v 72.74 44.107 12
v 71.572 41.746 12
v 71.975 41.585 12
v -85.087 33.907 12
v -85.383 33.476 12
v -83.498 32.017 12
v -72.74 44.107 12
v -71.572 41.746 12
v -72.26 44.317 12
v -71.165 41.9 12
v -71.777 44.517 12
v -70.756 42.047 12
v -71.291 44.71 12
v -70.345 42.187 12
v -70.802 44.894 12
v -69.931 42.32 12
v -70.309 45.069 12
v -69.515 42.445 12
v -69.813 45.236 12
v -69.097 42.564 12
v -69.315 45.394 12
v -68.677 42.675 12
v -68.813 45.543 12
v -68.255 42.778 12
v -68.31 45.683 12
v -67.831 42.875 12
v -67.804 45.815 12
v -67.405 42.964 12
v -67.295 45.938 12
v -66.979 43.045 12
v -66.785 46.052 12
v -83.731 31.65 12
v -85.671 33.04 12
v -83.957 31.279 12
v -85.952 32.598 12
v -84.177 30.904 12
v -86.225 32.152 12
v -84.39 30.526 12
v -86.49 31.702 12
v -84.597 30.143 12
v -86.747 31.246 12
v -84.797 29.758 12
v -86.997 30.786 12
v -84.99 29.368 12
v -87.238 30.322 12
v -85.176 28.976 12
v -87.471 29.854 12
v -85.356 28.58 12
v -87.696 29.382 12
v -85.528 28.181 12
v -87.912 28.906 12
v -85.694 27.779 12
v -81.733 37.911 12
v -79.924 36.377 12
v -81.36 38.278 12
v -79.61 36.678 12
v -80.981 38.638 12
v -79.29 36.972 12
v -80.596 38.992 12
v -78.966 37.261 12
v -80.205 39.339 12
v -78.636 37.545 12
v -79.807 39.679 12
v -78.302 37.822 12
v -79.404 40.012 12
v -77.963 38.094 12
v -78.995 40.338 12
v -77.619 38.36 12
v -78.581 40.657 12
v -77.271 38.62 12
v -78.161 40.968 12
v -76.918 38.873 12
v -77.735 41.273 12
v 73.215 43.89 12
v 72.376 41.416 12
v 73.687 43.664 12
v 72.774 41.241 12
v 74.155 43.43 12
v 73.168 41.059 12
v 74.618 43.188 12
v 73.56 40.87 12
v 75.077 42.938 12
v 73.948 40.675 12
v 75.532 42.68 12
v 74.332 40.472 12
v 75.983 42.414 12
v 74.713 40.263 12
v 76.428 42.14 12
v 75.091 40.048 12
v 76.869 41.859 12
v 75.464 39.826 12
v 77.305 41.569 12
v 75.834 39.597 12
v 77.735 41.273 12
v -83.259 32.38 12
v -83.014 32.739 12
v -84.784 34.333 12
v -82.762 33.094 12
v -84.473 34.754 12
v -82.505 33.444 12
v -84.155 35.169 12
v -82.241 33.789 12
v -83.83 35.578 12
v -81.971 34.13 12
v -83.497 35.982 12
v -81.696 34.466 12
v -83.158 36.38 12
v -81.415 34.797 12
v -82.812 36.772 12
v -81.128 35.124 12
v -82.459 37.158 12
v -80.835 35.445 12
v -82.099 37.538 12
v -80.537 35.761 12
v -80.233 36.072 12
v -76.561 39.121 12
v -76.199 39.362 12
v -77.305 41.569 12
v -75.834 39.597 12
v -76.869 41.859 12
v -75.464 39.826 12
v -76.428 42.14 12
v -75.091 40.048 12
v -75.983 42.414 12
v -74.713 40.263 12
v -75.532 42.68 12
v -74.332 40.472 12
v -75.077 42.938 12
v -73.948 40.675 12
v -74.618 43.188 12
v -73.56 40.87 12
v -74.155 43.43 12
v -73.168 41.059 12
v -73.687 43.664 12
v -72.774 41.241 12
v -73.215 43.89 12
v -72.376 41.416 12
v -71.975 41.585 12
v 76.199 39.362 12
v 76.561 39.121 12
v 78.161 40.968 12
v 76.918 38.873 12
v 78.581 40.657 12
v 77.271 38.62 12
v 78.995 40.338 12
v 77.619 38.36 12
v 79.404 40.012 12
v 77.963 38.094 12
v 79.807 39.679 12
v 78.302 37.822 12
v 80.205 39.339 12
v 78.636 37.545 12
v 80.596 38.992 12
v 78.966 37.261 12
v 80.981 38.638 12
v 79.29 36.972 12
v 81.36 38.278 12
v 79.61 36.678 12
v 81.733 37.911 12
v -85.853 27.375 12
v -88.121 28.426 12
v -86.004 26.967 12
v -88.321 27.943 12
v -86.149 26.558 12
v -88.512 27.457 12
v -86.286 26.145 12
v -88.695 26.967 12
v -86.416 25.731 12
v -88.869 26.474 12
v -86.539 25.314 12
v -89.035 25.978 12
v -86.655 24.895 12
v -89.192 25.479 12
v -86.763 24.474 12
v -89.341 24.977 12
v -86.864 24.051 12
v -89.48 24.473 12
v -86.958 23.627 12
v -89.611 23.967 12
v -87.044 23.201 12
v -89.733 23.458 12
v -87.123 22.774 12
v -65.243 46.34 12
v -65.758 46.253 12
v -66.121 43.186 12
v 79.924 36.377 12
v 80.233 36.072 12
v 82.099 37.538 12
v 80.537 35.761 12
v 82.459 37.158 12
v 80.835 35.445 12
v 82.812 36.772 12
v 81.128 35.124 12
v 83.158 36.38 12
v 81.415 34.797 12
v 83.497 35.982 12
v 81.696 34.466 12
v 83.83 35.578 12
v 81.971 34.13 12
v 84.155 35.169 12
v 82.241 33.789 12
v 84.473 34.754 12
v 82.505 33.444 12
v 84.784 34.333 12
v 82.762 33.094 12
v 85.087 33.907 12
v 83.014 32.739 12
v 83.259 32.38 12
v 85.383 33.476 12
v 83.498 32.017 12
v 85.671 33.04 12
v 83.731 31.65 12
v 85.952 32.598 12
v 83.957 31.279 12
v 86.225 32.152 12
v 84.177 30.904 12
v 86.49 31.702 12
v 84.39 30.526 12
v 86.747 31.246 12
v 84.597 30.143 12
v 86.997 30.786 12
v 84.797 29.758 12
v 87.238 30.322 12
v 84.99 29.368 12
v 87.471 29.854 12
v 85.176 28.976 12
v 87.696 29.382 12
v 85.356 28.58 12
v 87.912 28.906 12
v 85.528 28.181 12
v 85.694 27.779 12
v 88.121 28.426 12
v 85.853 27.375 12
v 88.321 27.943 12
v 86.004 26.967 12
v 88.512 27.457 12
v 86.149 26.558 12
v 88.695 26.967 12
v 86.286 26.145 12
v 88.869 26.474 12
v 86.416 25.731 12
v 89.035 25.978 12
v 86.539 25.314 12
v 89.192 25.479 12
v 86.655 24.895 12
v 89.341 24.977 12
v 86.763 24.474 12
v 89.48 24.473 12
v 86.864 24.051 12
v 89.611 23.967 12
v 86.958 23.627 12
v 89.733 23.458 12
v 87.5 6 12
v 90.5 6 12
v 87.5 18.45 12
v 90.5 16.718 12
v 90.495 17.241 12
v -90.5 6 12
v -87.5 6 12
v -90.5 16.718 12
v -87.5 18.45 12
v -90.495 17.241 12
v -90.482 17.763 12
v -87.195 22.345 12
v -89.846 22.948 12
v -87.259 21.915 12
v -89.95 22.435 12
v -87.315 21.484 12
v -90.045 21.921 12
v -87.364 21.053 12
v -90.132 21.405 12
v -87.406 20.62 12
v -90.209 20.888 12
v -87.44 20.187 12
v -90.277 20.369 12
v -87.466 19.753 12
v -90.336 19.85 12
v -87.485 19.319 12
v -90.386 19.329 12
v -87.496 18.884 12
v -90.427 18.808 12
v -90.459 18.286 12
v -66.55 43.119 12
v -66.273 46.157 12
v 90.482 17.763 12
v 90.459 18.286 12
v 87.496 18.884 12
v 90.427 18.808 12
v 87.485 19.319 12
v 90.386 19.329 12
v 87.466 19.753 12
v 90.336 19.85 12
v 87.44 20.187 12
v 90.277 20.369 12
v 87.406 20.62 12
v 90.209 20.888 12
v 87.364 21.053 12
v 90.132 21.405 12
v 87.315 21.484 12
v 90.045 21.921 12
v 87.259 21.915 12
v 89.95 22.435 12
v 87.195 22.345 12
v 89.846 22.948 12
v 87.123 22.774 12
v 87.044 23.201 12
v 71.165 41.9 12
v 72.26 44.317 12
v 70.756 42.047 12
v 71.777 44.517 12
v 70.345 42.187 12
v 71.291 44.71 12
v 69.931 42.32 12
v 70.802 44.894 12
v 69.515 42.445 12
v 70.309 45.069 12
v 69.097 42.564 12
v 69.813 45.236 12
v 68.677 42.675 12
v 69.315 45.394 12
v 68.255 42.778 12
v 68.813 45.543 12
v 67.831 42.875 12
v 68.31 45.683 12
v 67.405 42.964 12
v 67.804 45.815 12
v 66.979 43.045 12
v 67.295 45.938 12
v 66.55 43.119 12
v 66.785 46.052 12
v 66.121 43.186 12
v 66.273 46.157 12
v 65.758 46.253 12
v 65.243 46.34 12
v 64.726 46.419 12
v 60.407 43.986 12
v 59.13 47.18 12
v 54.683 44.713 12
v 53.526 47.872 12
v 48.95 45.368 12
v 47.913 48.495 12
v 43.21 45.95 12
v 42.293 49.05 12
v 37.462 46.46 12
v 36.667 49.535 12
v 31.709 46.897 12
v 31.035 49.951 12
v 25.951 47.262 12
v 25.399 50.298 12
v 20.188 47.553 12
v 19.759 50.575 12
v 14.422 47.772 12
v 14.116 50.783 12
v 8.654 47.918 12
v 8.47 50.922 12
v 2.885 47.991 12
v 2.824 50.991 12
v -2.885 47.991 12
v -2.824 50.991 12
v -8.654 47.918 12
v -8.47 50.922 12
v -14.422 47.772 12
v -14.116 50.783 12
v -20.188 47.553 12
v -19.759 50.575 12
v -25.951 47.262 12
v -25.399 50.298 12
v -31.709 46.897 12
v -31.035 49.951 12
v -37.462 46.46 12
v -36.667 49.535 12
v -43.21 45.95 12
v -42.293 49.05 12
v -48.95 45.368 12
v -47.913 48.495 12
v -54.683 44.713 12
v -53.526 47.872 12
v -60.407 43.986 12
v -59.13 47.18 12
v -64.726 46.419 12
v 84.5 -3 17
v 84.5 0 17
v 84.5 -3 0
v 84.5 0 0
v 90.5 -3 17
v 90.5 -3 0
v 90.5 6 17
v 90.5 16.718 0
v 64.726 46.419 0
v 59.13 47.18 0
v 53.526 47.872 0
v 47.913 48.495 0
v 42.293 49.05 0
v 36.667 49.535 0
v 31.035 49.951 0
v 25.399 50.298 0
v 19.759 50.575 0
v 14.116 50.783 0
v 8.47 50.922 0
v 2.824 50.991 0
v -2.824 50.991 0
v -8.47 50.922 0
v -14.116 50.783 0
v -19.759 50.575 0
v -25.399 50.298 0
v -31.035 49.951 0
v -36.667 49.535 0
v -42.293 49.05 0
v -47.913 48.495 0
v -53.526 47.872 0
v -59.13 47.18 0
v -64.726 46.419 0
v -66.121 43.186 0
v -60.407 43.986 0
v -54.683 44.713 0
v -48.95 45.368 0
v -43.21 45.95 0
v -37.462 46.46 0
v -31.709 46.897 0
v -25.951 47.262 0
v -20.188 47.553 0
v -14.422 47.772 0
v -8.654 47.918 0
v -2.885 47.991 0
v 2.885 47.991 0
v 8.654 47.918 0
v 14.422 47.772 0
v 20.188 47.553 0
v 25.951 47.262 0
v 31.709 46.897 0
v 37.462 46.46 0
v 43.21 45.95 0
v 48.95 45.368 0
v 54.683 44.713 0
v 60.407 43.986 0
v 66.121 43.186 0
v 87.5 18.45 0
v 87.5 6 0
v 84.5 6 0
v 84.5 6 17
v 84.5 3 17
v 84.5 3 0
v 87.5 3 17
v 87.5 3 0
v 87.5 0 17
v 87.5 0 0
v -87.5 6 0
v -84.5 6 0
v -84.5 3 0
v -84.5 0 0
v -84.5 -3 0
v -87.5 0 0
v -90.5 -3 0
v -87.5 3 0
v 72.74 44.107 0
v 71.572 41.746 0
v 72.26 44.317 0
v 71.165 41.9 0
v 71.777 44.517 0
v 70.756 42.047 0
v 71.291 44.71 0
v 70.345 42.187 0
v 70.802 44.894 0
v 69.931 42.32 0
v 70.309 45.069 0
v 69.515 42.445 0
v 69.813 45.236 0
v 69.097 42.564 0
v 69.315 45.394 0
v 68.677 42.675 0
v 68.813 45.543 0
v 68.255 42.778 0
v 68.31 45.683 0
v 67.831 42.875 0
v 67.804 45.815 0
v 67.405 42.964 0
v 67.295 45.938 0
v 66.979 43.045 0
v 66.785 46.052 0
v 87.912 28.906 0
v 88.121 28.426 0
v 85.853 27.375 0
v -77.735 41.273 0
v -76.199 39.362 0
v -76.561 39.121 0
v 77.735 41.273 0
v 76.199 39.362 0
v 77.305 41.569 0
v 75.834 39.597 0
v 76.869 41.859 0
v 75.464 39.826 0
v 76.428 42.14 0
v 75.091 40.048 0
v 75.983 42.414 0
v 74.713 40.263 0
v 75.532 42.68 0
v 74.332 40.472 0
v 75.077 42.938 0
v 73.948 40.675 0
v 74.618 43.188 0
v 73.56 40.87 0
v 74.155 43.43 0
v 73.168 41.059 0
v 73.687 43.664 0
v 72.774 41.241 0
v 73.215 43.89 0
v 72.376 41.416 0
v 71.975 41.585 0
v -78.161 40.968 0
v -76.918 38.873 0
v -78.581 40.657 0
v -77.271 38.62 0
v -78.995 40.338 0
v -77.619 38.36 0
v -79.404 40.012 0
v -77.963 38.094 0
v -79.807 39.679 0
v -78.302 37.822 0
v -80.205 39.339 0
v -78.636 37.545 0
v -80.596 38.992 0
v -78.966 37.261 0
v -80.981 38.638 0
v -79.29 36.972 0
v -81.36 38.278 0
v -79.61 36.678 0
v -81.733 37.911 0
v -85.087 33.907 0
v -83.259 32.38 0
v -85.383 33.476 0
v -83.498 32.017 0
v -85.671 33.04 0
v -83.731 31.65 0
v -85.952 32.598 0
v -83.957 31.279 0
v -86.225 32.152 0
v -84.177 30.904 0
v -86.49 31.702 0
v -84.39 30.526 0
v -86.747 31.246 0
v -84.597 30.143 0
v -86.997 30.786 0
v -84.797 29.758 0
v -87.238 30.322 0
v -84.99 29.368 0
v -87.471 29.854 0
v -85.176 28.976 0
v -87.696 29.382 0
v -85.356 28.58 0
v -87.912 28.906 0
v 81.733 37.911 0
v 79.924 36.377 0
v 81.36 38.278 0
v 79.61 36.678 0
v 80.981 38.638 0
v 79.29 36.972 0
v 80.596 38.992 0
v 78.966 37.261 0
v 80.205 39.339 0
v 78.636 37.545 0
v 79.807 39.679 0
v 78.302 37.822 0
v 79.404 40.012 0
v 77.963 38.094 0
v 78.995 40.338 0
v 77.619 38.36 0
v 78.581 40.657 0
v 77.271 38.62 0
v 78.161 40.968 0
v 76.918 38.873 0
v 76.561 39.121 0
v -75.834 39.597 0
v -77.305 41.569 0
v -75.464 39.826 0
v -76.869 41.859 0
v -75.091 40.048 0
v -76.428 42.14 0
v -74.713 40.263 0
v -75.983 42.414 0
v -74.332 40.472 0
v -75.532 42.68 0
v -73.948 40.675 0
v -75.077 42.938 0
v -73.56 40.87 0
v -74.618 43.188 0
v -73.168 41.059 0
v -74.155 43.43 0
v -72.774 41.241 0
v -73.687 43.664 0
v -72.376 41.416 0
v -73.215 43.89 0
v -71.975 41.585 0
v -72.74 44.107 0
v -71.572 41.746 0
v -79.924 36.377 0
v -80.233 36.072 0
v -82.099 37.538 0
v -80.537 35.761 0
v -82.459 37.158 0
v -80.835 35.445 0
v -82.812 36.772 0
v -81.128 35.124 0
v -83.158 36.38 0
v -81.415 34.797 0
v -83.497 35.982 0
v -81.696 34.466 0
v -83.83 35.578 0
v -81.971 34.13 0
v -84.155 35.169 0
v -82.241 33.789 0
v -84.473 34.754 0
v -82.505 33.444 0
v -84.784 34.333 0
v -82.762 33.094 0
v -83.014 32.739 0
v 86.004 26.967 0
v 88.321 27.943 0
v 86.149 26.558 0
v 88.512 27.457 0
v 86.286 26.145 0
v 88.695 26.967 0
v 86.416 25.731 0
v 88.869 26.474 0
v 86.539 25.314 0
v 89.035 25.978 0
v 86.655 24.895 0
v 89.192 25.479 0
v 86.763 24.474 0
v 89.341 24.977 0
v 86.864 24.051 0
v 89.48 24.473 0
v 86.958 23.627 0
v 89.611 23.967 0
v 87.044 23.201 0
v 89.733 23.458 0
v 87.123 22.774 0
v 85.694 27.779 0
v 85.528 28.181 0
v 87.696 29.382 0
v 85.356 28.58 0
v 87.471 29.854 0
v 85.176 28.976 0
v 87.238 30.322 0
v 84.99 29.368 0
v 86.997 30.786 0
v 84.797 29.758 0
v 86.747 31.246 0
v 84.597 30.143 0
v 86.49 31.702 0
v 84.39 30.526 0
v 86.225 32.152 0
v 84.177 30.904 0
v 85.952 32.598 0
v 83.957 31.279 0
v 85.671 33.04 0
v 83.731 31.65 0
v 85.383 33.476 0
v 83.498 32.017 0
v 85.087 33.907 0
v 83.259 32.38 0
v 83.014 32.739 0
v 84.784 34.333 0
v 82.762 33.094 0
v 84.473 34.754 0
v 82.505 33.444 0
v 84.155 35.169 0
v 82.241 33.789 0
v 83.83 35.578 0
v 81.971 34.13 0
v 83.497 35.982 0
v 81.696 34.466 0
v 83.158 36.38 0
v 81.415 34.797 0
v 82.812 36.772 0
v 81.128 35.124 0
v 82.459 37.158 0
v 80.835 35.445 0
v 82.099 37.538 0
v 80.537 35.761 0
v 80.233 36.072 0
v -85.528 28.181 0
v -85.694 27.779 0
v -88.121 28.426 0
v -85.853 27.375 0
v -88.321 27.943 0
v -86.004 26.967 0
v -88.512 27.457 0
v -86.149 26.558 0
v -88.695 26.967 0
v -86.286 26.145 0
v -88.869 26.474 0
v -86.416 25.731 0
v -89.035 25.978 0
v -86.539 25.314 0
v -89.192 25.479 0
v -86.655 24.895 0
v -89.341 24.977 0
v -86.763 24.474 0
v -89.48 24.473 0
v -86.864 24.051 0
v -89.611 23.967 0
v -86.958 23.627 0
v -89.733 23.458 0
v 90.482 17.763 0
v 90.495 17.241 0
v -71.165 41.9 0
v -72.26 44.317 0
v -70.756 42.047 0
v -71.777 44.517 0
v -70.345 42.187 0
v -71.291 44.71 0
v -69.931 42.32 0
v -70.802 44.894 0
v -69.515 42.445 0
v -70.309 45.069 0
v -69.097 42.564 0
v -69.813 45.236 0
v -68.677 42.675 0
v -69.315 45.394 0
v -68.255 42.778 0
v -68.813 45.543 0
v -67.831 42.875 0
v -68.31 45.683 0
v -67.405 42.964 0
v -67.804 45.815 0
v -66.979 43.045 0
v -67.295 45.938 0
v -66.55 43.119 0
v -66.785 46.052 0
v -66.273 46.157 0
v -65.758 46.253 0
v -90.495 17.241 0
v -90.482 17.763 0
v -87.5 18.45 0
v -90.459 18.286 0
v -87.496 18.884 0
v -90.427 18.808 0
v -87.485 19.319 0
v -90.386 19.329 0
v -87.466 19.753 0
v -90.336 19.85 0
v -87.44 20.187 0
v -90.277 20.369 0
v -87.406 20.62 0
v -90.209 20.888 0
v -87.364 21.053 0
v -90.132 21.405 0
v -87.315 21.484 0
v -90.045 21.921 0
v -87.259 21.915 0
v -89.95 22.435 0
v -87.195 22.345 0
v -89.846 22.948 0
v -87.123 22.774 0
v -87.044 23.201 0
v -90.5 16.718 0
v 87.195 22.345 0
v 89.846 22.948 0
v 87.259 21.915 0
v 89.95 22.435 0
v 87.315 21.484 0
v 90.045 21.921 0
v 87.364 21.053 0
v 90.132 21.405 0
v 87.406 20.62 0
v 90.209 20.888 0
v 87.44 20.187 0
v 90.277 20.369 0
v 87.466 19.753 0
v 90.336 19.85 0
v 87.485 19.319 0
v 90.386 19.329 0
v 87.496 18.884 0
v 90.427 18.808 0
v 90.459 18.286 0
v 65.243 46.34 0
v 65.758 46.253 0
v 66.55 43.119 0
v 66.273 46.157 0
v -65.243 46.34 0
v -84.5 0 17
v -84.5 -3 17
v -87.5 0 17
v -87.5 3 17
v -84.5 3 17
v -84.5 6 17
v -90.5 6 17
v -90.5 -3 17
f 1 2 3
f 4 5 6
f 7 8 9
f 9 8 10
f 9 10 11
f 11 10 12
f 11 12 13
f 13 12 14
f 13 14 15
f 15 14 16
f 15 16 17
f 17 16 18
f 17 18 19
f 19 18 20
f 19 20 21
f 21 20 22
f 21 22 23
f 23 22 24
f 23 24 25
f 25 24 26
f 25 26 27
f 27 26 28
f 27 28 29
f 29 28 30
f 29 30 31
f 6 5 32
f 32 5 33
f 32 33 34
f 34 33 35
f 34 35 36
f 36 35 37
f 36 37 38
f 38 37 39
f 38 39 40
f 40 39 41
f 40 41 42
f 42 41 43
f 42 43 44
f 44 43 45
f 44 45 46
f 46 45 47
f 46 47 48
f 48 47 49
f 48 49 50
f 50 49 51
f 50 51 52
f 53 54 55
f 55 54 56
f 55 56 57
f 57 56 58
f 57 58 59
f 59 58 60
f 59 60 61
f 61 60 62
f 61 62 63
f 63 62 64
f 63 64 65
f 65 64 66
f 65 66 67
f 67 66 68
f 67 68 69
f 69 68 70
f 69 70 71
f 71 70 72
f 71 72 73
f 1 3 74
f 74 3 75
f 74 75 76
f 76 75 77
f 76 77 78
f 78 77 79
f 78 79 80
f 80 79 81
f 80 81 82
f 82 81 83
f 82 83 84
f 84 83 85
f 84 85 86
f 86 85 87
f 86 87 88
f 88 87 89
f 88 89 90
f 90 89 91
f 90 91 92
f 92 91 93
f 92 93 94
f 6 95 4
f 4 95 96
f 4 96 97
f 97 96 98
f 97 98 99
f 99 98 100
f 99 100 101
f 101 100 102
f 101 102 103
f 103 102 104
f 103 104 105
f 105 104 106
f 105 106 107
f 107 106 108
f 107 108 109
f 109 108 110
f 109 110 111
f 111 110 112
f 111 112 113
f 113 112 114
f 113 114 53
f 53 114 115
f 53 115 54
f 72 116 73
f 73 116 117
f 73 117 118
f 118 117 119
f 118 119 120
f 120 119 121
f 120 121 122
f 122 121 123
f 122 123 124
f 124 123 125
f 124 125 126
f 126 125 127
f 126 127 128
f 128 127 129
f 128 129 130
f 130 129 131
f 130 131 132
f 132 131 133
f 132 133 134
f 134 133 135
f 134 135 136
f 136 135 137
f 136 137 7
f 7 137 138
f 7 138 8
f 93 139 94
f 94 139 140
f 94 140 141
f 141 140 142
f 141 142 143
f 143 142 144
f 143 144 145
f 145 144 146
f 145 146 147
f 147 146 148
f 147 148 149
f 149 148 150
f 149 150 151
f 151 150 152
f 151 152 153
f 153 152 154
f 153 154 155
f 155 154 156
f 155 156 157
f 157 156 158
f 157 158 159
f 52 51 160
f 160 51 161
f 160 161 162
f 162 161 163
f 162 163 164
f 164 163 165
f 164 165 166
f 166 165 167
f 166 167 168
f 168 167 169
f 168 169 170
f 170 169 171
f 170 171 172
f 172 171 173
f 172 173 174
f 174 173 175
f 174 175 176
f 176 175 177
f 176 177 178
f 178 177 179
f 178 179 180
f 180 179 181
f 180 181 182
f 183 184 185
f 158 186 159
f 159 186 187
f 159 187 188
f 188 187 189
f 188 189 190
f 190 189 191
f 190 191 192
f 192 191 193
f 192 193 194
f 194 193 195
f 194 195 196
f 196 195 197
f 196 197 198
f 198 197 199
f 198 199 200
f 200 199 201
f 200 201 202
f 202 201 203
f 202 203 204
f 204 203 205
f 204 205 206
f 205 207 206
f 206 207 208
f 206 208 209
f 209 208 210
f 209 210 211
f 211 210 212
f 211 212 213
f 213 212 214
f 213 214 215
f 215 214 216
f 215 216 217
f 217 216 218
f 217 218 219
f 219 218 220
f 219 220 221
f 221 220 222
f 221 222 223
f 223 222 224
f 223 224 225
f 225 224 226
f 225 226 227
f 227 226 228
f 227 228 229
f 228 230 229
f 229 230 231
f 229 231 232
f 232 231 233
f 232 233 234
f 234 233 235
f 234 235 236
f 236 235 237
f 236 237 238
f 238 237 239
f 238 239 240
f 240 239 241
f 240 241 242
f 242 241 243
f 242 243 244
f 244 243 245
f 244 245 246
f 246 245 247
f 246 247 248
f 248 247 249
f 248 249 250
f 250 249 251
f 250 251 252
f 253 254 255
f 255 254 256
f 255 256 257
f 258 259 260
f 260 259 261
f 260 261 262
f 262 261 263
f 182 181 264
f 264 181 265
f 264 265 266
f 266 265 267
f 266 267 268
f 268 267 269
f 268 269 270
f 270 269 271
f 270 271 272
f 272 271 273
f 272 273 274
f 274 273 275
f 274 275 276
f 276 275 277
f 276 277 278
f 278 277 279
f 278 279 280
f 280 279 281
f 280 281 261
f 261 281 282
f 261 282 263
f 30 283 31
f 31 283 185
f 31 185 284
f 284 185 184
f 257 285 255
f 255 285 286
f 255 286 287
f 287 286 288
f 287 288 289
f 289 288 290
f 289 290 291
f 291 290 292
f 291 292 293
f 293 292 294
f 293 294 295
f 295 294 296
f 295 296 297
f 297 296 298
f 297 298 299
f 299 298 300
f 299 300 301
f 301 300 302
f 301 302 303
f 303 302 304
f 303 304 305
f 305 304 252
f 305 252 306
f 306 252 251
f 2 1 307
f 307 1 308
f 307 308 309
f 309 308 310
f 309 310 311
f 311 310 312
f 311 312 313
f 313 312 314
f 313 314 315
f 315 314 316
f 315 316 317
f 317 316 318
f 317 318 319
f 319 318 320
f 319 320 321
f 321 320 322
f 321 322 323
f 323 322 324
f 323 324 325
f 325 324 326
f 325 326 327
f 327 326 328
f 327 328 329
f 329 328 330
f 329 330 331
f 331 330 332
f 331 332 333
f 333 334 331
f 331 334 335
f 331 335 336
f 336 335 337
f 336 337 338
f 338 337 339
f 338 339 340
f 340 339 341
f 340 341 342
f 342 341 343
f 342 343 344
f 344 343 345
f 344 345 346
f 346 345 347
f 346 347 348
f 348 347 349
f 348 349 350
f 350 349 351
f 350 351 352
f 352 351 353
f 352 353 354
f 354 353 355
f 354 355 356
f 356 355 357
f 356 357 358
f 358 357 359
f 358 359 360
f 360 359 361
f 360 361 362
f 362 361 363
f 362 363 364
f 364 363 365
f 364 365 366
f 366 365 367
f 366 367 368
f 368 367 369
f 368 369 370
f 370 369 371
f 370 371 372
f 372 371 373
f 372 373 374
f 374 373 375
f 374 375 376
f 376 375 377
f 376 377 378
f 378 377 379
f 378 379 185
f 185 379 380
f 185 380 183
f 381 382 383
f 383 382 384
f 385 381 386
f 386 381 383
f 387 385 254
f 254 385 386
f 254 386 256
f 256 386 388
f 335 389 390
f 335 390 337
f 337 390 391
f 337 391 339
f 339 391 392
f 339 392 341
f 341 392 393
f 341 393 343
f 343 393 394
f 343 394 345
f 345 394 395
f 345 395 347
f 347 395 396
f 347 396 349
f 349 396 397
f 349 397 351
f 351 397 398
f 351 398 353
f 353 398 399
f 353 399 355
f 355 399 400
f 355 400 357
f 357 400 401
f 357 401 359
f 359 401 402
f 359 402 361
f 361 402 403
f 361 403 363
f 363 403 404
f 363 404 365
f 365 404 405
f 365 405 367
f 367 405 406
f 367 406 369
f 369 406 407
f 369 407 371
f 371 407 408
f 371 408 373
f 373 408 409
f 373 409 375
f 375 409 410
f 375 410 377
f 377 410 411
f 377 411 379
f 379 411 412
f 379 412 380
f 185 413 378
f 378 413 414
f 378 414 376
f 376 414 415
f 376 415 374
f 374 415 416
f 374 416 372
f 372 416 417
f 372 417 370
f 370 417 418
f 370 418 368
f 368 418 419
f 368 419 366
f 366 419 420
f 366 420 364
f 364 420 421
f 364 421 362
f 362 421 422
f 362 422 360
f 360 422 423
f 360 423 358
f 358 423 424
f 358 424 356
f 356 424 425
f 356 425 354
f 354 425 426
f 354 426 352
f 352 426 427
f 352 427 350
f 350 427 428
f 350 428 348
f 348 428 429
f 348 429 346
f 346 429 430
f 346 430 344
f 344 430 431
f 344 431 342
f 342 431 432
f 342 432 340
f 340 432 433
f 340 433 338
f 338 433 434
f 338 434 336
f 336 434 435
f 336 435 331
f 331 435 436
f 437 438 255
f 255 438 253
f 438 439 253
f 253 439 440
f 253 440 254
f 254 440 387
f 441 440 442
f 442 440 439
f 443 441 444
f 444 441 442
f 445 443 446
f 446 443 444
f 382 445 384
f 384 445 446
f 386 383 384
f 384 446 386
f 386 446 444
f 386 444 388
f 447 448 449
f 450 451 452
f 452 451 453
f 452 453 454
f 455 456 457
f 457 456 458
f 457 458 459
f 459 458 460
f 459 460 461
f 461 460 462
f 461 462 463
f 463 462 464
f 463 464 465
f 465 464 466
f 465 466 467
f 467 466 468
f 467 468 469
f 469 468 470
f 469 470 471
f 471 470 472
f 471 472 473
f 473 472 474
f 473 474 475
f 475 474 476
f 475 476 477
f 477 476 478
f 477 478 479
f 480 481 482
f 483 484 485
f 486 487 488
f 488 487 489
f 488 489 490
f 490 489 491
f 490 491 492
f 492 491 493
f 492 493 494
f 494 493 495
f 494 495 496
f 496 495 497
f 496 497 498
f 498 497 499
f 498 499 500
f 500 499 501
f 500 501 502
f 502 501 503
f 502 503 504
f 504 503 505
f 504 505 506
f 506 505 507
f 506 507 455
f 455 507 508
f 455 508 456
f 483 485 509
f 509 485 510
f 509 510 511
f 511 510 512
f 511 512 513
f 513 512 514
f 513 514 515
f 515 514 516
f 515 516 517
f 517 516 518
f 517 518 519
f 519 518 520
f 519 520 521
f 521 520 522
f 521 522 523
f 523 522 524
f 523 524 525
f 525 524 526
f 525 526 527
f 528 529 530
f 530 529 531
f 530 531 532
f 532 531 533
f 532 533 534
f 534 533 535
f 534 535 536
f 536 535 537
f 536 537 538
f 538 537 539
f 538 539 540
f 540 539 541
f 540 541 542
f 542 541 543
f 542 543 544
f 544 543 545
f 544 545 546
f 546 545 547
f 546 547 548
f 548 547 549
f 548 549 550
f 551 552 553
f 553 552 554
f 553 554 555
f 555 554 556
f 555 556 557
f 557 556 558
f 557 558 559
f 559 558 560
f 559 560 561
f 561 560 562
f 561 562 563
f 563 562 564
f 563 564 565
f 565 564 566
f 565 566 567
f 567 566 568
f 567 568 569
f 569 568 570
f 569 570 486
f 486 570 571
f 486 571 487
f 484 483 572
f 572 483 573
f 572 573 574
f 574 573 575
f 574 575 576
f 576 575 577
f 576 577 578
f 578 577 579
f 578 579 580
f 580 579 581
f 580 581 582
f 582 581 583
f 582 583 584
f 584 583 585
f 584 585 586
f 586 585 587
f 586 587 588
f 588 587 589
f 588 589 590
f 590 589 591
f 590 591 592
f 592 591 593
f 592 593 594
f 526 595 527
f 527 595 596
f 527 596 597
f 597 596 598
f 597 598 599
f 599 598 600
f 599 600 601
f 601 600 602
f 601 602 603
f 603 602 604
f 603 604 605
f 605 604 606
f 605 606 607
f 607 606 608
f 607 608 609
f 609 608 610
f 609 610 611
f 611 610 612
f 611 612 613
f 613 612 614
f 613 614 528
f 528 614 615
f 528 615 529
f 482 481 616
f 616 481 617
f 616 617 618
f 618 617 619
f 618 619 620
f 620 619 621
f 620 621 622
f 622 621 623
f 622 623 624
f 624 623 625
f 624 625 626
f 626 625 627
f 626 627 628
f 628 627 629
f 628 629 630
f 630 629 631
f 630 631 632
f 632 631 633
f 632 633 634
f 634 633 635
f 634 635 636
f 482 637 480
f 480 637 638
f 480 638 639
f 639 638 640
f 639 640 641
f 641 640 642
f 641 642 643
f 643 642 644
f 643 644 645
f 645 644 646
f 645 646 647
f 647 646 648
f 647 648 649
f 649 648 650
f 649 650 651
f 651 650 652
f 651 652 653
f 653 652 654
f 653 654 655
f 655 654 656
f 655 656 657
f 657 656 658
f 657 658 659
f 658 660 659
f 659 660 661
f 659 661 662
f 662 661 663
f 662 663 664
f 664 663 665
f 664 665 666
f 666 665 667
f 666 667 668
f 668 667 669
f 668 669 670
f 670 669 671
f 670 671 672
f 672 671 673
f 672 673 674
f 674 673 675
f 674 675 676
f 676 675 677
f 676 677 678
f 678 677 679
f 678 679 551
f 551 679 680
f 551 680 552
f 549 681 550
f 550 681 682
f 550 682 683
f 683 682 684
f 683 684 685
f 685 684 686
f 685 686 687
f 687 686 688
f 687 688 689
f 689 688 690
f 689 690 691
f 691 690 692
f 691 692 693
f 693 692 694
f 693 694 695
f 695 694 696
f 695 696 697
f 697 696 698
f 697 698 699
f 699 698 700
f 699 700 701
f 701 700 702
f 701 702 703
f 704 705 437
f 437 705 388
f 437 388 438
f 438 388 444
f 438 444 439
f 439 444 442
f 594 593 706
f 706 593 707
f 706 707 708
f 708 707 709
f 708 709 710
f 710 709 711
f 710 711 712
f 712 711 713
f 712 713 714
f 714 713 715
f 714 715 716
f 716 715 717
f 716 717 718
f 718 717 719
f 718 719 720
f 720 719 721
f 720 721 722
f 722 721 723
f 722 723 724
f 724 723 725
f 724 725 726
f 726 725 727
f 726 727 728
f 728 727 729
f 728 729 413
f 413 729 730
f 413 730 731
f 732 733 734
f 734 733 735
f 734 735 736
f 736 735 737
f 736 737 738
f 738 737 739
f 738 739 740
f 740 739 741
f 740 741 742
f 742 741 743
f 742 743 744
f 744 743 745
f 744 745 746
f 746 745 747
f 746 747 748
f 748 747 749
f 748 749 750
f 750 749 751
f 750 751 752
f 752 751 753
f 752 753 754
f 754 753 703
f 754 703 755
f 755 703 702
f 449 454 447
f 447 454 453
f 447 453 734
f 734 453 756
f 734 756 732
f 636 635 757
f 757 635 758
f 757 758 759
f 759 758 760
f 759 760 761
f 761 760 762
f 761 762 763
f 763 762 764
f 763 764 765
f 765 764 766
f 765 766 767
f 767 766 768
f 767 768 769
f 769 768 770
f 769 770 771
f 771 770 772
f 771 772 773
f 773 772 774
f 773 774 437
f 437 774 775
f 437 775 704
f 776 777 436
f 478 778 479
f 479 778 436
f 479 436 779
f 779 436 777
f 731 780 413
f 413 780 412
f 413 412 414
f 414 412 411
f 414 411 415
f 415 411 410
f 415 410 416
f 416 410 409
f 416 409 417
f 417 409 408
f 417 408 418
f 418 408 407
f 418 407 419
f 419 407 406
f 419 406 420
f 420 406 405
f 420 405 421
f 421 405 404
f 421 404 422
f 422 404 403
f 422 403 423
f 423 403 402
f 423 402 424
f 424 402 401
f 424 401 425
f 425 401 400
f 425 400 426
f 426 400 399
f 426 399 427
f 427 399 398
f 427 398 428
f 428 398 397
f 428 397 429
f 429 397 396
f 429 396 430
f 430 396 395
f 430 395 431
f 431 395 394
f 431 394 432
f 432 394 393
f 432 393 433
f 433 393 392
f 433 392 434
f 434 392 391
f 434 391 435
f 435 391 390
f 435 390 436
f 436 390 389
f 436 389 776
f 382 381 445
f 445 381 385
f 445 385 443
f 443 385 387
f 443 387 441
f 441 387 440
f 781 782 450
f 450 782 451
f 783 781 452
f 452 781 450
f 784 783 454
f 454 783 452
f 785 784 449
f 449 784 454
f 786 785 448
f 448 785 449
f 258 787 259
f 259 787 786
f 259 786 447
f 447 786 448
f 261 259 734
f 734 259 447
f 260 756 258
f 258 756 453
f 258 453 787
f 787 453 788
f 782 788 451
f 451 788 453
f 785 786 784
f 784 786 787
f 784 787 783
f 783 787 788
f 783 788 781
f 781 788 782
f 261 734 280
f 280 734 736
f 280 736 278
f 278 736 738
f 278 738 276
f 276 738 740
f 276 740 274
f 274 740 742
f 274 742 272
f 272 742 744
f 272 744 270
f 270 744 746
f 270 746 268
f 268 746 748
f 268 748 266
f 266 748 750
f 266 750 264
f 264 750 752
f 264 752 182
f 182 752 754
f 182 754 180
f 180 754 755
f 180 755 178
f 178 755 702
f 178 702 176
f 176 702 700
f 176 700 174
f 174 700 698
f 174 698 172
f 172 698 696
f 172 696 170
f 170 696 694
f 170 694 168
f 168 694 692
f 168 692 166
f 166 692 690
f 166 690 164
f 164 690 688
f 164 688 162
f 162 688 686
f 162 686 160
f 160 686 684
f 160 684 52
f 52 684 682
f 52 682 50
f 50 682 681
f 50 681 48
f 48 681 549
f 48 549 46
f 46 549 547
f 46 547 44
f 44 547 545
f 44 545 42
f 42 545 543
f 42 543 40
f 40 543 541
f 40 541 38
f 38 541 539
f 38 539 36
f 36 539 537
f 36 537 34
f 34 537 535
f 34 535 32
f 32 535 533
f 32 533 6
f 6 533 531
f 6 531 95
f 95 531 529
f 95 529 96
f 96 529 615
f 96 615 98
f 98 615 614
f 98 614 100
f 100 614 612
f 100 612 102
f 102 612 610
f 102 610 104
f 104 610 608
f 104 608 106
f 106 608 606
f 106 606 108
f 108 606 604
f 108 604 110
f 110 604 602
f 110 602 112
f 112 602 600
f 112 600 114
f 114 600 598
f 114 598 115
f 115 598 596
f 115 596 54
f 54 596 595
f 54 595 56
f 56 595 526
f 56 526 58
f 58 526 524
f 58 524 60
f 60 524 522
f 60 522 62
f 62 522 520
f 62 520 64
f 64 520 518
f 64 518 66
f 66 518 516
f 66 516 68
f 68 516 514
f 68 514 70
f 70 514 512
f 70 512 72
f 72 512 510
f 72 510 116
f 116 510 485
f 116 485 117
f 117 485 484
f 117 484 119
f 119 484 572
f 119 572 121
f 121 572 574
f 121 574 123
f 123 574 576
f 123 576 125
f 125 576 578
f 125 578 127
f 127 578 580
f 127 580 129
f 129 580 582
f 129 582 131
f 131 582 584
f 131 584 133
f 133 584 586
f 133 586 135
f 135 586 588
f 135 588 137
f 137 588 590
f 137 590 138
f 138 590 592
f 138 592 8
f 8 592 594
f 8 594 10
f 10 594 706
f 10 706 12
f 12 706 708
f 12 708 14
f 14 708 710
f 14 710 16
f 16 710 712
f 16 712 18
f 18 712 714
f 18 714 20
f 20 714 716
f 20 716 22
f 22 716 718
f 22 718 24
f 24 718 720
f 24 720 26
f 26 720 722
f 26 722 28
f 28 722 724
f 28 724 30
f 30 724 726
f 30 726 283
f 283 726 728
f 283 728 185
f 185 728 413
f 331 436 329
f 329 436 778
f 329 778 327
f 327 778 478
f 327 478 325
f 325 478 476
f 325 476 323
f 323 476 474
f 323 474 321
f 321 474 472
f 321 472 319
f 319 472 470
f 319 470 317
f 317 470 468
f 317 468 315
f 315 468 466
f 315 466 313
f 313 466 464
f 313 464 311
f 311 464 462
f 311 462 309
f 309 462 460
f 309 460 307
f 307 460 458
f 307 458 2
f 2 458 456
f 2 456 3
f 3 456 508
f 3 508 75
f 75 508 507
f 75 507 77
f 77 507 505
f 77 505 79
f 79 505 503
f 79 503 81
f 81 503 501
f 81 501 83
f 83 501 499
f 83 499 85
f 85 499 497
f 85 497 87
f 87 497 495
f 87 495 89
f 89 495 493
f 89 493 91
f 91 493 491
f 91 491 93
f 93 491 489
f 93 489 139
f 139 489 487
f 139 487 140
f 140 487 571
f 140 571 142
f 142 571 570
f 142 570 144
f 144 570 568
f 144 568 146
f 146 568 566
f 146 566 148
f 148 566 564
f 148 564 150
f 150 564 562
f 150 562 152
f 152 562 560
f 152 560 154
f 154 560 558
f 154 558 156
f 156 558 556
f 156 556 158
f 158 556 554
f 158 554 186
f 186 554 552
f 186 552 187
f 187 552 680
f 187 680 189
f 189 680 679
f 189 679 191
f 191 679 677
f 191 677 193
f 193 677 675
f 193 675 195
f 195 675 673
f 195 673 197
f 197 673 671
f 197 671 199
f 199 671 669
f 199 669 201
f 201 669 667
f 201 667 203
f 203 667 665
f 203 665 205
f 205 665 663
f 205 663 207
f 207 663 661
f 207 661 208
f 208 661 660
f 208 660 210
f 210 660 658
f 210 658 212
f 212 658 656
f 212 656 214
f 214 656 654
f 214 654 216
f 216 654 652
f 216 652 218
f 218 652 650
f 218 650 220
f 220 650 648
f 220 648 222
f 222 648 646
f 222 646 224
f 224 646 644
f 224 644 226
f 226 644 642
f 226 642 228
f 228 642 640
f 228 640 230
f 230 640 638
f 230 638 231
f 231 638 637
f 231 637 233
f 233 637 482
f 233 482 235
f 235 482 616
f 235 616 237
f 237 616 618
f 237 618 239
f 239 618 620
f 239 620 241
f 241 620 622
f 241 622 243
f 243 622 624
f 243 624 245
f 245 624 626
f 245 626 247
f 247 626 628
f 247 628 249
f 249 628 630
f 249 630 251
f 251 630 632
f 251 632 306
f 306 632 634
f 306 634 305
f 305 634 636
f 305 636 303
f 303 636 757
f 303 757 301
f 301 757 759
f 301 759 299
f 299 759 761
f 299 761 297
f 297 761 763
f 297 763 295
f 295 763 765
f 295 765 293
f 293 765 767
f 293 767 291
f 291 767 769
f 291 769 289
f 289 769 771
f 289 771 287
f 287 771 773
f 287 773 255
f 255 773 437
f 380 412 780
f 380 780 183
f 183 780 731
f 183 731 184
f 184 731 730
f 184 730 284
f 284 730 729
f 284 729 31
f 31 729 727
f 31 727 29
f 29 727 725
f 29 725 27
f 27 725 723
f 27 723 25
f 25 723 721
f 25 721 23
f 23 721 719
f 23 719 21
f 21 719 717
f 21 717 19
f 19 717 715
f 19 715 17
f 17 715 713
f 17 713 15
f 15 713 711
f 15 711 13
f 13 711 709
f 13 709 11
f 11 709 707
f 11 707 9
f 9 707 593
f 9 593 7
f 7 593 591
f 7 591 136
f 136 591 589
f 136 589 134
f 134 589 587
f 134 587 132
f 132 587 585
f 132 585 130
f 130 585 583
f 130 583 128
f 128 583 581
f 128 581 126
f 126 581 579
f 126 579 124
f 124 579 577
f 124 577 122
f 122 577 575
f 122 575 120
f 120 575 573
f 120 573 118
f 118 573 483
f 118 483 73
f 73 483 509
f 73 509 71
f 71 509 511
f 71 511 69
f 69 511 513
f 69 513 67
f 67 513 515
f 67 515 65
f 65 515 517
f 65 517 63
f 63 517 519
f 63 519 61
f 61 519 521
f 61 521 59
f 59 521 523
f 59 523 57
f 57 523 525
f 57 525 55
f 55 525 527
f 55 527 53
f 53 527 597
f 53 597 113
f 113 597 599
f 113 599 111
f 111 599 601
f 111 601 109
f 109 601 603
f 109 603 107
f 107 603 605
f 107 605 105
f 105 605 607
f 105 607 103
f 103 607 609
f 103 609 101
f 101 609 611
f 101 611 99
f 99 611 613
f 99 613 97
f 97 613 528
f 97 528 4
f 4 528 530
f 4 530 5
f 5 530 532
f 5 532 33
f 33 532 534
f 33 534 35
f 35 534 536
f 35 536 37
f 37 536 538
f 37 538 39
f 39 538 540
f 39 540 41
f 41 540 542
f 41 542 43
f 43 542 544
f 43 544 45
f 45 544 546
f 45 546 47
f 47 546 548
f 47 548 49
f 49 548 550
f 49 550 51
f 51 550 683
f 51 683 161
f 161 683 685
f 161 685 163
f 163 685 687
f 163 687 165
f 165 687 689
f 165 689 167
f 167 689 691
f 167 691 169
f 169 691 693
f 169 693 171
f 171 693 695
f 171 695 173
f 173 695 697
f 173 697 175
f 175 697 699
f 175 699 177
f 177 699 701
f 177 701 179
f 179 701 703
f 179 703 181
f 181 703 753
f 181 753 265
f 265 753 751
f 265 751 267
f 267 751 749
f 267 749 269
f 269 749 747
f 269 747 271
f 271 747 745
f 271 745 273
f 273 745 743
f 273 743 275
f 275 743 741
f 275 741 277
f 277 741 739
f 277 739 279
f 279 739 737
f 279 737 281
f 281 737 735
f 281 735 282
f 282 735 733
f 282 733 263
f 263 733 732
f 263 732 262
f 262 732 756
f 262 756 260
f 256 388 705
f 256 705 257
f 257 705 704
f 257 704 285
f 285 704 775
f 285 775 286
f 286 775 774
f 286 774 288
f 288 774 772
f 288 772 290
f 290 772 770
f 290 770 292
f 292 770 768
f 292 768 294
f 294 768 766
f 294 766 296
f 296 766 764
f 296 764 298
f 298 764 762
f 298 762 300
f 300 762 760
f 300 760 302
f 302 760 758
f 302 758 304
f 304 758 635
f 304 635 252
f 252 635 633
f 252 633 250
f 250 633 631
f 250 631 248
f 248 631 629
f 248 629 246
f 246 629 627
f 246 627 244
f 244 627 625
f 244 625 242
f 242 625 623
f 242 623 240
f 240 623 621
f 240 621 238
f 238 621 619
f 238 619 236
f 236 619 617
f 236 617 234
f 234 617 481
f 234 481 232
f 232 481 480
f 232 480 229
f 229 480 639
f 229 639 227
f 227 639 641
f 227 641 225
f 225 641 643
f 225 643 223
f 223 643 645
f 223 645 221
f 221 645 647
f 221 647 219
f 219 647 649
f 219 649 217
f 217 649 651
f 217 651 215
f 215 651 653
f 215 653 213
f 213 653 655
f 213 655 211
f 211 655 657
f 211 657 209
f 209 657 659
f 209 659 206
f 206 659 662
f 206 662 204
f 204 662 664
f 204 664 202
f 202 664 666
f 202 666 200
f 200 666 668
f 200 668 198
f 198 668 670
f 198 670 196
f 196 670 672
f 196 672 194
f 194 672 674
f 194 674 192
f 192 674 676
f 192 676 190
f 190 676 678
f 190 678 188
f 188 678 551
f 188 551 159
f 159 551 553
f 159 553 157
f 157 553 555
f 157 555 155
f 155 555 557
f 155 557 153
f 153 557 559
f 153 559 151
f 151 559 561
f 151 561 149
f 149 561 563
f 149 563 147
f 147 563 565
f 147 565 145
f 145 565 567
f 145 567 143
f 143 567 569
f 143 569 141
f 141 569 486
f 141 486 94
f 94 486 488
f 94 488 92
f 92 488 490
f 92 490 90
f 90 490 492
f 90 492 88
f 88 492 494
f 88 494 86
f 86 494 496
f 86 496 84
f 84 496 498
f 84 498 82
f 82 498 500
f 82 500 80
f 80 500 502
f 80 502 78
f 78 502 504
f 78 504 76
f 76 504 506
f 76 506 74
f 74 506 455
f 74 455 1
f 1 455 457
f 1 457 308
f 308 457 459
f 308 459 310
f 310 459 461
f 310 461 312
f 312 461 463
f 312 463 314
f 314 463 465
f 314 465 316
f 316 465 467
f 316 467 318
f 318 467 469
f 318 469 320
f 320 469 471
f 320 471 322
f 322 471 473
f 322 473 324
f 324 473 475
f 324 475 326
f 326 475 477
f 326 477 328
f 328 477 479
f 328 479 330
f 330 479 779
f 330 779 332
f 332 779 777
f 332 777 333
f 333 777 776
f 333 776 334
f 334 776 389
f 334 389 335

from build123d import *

# Parameters (mm, degrees)
BOSS_EXTRUDE1_DEPTH = 12
BOSS_EXTRUDE2_DEPTH = 5
FILLET1_R           = 25
FILLET2_R           = 30


with BuildPart() as part:
    # Sketch1 → Boss-Extrude1 (new body)
    with BuildSketch(Plane.XY):
        with BuildLine():
            Line((84.5, 0), (87.5, 0))
            Line((87.5, 0), (87.5, 3))
            Line((87.5, 3), (84.5, 3))
            Line((84.5, 3), (84.5, 6))
            Line((84.5, 6), (87.5, 6))
            Line((87.5, 6), (87.5, 39.535975243))
            ThreePointArc((87.5, 39.535975243), (43.954208317, 45.879066954), (0, 48))
            Line((0, 48), (0, 51))
            ThreePointArc((0, 51), (45.473206397, 48.744464323), (90.5, 42))
            Line((90.5, 42), (90.5, -3))
            Line((90.5, -3), (84.5, -3))
            Line((84.5, -3), (84.5, 0))
        make_face()
    boss_extrude1 = extrude(amount=BOSS_EXTRUDE1_DEPTH)

    # Sketch2 → Boss-Extrude2 (add)
    with BuildSketch(Plane.XY.offset(12)):
        Polygon((90.5, -3), (84.5, -3), (84.5, 0), (87.5, 0), (87.5, 3), (84.5, 3), (84.5, 6), (90.5, 6), align=None)
    boss_extrude2 = extrude(amount=BOSS_EXTRUDE2_DEPTH)

    # Mirror1: Boss-Extrude1, Boss-Extrude2 across plane
    add(boss_extrude1.mirror(Plane(origin=(0, 0, 0), x_dir=(0, 0, 1), z_dir=(1, 0, 0))))
    add(boss_extrude2.mirror(Plane(origin=(0, 0, 0), x_dir=(0, 0, 1), z_dir=(1, 0, 0))))

    # Fillet1
    fillet1_edges = [part.edges().sort_by_distance(p)[0] for p in [
        (87.5, 39.535975243, 6),
        (-87.5, 39.535975243, 6),
    ]]
    fillet(fillet1_edges, radius=FILLET1_R)

    # Fillet2
    fillet2_edges = [part.edges().sort_by_distance(p)[0] for p in [
        (90.5, 42, 6),
        (-90.5, 42, 6),
    ]]
    fillet(fillet2_edges, radius=FILLET2_R)


solid = part.part
